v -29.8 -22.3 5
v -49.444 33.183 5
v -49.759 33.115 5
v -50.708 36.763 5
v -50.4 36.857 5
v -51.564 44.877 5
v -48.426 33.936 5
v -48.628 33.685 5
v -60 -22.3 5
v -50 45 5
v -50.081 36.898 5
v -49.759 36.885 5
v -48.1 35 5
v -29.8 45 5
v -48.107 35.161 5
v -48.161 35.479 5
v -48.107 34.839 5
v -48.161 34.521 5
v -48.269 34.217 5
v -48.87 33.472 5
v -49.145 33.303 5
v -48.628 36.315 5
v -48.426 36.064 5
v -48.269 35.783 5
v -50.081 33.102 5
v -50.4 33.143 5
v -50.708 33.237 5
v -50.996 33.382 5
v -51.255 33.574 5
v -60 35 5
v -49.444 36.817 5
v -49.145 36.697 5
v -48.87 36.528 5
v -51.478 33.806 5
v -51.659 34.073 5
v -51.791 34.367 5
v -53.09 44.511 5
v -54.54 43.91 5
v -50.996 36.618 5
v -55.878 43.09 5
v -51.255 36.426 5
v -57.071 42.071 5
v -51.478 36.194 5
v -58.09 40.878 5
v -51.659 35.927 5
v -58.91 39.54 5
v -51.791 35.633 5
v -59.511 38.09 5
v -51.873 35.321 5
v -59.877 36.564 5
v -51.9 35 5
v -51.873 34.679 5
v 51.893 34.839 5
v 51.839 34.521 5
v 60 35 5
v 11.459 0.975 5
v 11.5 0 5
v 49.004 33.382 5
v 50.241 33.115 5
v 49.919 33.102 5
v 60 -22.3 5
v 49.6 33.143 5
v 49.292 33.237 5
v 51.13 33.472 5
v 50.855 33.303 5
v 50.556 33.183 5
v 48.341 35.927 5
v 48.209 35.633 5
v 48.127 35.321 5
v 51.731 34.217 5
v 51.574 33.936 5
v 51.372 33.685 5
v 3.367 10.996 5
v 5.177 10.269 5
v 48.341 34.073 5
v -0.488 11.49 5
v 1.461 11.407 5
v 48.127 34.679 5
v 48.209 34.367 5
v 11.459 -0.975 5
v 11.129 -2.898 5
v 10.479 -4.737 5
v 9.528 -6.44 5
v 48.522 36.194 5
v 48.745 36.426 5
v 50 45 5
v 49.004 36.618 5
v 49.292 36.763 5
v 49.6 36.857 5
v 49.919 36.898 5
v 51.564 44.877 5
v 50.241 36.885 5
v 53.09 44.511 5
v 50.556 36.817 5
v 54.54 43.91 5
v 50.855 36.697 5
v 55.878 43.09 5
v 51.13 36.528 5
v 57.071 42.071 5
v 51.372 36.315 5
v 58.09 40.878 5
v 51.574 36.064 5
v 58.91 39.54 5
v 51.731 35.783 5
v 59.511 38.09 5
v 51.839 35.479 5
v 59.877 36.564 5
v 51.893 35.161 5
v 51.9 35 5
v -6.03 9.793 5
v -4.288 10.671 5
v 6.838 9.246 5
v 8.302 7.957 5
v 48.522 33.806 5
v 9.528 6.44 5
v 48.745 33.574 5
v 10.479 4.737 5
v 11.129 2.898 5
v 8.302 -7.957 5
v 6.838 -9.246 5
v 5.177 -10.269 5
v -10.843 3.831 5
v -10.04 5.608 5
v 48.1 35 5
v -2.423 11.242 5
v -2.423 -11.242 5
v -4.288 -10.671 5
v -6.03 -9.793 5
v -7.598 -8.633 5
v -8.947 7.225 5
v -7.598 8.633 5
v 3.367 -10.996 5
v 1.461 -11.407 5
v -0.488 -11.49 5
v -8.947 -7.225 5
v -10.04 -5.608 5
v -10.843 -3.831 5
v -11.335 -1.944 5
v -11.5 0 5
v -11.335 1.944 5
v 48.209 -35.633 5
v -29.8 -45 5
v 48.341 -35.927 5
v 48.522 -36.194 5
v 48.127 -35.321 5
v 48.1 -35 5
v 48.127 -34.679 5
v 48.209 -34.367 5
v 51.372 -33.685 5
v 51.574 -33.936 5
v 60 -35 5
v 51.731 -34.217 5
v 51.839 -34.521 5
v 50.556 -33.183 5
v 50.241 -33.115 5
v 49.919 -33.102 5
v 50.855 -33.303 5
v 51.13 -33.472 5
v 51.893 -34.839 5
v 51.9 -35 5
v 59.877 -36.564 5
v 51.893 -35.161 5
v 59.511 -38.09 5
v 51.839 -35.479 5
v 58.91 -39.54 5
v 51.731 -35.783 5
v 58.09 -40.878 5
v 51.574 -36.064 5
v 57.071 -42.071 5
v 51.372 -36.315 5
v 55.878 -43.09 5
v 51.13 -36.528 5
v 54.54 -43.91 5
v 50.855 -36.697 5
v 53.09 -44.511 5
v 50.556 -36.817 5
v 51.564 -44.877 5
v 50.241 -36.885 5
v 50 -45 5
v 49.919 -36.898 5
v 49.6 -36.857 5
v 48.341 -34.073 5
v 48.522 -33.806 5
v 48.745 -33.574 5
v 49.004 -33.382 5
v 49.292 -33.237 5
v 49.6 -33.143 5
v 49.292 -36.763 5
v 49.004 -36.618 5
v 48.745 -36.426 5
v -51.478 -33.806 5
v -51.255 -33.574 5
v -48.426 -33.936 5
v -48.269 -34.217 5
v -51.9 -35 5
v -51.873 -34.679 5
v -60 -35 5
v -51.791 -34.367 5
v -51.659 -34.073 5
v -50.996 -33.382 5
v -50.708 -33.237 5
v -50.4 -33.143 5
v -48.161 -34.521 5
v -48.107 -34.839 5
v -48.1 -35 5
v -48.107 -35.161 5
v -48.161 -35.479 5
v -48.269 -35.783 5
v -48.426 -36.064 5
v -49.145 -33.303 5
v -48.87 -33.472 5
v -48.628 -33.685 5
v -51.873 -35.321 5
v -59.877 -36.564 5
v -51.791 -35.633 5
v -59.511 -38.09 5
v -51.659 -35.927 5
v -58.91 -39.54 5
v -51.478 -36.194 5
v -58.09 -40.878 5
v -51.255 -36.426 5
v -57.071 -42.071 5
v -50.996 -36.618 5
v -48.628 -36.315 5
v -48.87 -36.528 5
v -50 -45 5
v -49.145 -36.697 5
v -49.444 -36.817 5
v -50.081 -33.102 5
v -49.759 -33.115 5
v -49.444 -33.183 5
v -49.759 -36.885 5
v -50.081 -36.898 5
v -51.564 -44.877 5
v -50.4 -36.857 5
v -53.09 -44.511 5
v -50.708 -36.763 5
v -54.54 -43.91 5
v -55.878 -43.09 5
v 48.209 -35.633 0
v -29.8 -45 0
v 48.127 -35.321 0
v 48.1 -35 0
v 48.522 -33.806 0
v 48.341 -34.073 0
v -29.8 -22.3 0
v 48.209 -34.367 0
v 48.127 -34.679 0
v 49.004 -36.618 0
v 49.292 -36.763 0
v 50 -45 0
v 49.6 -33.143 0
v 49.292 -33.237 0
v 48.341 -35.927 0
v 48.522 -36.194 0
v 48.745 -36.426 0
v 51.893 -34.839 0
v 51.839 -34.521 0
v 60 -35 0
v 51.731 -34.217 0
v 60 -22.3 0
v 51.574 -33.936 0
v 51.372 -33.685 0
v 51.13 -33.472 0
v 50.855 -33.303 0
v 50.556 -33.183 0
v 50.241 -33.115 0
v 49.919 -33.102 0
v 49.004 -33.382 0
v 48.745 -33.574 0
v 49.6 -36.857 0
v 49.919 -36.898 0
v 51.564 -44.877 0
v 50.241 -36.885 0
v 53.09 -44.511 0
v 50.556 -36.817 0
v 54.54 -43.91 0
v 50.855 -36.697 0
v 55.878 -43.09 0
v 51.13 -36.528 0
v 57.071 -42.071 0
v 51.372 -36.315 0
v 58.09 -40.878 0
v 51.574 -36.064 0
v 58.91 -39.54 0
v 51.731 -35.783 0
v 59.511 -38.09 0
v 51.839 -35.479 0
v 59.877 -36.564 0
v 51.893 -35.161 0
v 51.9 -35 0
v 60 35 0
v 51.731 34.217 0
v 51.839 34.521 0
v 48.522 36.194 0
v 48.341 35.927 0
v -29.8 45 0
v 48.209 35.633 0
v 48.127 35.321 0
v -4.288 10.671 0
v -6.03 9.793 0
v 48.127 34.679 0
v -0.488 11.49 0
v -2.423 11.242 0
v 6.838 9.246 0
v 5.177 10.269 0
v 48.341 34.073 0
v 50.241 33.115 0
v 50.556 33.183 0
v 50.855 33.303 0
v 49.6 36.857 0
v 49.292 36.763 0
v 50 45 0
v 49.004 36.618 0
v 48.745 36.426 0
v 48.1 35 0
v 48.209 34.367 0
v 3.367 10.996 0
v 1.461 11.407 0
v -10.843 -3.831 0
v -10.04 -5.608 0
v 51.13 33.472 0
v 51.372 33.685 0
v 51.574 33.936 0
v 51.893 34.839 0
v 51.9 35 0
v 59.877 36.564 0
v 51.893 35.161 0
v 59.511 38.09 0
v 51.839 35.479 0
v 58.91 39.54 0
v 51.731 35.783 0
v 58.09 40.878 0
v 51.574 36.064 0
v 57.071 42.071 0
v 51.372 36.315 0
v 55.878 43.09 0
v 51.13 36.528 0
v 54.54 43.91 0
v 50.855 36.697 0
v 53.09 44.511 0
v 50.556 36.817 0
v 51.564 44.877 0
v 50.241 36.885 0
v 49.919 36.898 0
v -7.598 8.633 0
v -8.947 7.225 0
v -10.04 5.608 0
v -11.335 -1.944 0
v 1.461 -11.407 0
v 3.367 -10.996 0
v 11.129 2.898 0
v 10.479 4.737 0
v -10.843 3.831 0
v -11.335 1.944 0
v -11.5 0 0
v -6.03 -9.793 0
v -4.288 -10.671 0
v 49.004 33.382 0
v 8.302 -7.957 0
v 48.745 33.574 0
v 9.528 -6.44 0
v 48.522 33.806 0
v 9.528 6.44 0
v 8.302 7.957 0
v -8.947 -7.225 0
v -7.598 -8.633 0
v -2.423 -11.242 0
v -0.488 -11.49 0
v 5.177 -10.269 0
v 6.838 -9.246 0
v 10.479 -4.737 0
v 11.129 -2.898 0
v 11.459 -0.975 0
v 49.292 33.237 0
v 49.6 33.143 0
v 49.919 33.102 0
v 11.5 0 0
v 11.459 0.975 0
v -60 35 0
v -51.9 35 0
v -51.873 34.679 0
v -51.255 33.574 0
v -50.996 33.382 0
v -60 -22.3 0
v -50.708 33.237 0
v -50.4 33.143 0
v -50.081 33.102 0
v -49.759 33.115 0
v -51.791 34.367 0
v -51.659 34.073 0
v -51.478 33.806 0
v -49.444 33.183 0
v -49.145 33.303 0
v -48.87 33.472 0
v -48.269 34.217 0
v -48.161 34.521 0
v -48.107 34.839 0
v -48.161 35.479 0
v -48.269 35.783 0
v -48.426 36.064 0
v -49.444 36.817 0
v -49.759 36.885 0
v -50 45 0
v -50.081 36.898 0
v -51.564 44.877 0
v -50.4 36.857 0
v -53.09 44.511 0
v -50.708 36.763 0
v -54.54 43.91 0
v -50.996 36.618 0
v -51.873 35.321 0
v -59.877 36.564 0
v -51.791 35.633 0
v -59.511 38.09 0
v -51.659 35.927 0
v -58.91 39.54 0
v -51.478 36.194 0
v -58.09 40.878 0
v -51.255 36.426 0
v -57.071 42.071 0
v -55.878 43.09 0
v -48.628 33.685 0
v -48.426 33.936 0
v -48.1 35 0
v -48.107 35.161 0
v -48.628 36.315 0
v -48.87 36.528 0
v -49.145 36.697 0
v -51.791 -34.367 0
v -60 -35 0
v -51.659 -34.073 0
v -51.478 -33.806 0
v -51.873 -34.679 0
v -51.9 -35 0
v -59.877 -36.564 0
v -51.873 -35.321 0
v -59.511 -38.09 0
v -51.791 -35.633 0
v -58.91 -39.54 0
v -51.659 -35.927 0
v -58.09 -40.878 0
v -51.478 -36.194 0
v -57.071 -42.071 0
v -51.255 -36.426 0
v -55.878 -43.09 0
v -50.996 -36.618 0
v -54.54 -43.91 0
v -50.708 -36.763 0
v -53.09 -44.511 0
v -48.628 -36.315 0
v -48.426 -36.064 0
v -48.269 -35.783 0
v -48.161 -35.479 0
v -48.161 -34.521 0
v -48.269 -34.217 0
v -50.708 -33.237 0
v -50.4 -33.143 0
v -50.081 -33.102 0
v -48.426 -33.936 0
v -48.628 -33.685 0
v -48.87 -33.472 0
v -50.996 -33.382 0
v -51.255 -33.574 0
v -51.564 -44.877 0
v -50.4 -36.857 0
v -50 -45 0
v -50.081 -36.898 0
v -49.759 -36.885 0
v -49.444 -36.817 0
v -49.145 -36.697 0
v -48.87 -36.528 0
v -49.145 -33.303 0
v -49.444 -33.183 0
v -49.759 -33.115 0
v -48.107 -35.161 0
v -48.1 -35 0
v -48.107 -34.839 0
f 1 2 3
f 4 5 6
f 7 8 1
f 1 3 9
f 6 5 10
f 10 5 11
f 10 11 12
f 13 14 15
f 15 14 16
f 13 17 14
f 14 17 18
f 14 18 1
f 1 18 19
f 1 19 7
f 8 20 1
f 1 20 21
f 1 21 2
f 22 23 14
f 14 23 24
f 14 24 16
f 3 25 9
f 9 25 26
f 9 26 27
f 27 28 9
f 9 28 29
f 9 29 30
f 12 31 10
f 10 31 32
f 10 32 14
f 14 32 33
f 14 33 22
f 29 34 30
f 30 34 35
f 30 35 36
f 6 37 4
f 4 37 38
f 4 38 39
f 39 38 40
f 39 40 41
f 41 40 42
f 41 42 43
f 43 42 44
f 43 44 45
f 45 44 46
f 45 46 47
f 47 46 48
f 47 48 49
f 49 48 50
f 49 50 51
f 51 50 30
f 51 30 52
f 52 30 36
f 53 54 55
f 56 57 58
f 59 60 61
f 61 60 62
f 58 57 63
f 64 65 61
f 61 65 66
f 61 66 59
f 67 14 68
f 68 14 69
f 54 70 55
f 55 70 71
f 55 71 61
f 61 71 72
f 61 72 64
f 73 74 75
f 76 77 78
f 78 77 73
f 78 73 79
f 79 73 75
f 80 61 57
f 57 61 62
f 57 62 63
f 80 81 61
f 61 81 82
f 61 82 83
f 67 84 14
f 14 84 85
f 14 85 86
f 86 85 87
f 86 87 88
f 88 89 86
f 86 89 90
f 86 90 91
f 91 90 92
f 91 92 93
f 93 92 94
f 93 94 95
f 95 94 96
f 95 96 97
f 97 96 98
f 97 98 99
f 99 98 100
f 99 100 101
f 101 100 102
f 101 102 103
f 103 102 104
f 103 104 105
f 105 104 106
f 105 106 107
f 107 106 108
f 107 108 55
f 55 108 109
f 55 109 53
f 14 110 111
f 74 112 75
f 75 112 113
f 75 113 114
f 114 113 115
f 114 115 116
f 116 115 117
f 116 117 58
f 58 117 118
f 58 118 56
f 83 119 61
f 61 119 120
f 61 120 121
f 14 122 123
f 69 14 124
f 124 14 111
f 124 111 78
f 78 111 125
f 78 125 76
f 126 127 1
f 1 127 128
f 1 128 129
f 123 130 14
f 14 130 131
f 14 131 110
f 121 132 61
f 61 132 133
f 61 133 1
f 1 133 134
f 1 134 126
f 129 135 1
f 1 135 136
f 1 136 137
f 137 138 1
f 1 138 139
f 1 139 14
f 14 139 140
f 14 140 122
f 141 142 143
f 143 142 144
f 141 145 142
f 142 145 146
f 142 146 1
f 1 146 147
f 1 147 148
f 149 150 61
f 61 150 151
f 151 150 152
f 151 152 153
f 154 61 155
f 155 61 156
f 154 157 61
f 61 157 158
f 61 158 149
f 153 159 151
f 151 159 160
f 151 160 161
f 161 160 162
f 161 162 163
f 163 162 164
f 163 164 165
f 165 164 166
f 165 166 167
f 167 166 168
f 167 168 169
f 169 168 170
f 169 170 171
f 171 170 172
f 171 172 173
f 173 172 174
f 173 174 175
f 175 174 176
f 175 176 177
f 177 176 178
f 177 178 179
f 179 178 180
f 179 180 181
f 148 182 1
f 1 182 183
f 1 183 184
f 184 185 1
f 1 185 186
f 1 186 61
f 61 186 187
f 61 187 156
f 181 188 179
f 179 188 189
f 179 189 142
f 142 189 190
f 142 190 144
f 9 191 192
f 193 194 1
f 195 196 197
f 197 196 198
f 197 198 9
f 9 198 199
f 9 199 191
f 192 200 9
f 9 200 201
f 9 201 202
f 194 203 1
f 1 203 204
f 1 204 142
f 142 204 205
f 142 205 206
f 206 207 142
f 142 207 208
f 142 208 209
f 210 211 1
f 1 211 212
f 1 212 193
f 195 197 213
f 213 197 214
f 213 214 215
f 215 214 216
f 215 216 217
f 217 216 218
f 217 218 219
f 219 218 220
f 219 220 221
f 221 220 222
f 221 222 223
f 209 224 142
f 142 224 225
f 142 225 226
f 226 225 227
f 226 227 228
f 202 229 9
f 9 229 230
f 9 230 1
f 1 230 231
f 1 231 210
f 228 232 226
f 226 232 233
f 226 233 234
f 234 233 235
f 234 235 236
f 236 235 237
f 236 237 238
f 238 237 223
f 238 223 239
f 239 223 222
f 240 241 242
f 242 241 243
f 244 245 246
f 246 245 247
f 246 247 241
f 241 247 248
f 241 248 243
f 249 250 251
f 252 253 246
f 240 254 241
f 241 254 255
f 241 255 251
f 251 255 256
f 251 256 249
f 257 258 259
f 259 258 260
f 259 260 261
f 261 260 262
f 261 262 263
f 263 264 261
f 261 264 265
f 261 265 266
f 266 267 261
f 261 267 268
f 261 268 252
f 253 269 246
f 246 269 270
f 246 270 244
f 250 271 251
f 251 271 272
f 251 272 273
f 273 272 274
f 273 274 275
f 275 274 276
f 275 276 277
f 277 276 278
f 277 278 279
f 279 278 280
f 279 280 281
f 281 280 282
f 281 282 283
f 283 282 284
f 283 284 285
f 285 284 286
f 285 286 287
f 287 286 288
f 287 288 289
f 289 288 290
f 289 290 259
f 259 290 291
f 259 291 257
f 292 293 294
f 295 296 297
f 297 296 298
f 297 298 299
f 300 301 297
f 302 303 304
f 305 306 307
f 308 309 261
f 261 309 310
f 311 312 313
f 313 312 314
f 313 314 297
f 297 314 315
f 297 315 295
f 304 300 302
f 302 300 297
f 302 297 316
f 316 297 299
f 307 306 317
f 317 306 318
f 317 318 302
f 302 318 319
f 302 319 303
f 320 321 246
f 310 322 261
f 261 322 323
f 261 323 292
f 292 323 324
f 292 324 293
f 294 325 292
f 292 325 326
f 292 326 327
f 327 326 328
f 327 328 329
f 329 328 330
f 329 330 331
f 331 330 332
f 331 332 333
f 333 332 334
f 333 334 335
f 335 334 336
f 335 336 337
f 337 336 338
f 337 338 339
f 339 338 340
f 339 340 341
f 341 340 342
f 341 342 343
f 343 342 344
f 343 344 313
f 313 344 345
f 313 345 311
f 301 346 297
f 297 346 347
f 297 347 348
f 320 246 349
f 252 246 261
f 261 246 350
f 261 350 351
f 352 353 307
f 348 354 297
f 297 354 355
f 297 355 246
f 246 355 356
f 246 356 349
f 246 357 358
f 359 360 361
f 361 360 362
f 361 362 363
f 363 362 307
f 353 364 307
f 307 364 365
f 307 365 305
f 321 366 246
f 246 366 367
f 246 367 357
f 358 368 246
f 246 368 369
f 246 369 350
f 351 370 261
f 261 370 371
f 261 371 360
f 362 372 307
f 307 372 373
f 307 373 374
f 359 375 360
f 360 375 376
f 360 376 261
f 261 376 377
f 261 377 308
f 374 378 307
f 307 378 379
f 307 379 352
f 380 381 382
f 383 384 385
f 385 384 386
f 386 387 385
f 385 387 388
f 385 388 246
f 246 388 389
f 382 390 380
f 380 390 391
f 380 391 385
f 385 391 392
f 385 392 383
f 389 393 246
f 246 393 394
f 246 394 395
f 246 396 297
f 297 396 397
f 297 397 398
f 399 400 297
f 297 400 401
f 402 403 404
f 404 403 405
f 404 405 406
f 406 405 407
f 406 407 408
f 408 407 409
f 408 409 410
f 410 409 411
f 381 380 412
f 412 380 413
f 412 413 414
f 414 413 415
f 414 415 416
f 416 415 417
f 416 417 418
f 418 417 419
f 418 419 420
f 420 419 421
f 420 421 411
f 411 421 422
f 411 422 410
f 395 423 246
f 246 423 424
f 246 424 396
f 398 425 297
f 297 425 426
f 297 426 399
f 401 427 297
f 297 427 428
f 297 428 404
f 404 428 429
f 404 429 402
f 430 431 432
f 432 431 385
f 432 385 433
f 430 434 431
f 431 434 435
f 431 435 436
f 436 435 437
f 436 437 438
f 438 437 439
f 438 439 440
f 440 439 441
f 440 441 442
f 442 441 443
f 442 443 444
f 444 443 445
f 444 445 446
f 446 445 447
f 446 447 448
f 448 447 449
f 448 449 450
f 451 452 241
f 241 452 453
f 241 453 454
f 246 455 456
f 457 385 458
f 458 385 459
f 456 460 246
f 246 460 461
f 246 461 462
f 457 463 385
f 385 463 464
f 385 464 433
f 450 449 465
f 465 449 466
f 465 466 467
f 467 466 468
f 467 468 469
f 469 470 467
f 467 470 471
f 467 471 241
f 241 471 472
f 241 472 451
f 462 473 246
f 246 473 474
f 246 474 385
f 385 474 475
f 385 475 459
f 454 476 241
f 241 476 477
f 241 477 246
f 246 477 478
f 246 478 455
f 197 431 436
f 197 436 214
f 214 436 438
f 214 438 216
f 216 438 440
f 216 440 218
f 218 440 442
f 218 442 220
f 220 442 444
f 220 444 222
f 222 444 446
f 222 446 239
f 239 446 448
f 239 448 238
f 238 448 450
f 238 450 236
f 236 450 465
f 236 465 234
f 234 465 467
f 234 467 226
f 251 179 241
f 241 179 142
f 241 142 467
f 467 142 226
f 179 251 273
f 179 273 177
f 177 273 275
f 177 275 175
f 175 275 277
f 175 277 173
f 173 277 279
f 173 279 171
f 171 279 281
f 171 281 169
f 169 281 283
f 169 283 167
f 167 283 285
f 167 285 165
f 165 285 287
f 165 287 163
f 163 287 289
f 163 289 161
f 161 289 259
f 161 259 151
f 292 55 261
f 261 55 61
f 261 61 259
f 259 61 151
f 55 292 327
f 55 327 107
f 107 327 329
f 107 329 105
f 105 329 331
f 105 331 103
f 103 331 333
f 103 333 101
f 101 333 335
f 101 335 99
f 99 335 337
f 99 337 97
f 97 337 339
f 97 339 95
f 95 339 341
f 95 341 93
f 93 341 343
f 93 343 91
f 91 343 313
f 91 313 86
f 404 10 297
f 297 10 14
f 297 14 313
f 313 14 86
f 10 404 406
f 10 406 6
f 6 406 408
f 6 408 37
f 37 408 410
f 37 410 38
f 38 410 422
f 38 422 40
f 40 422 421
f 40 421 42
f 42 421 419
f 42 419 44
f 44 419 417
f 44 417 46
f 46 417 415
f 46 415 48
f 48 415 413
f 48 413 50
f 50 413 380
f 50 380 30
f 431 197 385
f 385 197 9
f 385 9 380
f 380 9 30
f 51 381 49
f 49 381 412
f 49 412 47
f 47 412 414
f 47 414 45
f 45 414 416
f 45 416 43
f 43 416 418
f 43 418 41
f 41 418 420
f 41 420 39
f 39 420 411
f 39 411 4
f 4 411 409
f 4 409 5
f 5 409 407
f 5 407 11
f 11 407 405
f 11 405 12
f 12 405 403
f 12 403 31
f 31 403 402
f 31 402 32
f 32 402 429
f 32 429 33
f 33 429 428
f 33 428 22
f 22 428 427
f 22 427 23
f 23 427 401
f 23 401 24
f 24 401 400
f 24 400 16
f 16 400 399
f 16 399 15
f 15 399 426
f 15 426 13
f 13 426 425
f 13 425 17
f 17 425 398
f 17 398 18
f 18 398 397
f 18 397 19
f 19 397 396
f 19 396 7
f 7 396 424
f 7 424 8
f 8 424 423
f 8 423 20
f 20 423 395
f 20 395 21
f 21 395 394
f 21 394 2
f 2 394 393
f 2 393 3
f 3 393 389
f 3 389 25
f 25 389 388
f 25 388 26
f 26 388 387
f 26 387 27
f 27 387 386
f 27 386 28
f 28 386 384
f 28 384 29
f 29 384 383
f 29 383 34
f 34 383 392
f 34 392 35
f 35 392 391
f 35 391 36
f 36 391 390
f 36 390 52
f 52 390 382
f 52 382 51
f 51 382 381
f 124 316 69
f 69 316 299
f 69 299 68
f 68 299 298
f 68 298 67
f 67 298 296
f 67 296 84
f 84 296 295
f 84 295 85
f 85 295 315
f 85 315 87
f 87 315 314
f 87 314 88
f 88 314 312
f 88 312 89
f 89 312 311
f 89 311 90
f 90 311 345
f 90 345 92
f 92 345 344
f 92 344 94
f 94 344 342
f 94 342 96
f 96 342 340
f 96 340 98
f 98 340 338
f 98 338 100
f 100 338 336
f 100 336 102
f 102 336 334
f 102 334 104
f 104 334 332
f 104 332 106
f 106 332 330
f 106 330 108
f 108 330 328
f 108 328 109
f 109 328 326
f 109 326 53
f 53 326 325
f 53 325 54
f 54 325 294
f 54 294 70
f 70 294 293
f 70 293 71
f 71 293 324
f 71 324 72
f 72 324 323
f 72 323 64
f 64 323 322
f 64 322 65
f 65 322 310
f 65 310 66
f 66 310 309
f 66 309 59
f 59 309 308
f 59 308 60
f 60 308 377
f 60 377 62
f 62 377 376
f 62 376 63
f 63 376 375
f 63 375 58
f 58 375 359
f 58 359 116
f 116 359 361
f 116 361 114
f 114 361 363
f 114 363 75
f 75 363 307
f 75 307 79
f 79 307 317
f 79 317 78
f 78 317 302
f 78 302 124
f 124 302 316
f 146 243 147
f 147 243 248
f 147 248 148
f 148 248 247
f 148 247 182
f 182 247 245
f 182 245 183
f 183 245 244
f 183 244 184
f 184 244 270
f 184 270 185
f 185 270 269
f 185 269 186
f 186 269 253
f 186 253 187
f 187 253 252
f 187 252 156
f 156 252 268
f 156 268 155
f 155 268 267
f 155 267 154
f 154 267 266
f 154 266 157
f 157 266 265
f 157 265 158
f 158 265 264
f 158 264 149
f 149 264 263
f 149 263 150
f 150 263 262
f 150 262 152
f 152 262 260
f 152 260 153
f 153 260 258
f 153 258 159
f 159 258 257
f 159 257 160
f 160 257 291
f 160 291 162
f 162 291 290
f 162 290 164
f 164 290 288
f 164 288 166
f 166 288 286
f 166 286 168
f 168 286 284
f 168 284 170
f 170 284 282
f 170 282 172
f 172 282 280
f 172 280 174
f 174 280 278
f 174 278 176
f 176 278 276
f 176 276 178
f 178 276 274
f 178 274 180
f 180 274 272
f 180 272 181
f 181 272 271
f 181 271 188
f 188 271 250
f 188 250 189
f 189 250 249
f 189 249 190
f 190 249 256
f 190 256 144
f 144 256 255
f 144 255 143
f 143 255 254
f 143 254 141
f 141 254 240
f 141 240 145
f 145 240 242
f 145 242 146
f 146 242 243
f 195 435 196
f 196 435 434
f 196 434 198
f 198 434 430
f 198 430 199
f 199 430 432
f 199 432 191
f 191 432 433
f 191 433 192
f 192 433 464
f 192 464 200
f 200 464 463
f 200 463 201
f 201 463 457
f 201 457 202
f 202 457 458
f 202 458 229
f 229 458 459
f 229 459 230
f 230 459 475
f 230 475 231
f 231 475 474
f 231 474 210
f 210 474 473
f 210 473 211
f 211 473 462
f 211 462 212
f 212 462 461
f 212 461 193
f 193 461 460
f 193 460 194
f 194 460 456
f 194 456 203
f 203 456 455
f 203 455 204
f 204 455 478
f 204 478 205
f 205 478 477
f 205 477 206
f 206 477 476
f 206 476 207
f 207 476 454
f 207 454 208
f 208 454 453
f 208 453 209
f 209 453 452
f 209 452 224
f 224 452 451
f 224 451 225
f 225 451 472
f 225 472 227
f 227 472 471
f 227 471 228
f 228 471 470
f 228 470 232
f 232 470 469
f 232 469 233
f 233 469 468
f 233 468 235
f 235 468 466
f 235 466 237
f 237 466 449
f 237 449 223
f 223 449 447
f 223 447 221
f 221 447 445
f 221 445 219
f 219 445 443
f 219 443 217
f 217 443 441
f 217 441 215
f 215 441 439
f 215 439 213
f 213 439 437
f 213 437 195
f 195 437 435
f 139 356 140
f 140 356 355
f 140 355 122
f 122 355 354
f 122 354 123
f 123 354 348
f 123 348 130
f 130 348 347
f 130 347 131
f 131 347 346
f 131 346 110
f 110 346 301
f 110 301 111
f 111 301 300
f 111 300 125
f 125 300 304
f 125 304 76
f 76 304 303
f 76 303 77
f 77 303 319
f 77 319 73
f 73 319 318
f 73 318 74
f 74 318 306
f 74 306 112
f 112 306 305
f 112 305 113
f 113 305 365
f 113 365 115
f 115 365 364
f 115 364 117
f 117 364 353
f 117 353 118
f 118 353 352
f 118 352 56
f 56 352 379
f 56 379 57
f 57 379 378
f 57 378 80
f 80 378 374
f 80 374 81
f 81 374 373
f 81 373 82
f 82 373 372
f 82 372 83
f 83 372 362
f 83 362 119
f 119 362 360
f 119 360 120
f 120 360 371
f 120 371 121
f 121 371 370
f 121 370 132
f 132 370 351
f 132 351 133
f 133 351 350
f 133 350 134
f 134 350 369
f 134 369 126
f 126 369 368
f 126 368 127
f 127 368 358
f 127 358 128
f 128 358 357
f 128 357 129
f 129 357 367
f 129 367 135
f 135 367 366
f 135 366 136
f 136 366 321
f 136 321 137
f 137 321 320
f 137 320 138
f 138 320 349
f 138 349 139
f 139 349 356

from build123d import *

# Parameters (mm, degrees)
SKETCH3_R           = 1.9
SKETCH3_R_2         = 11.5
BOSS_EXTRUDE2_DEPTH = 5


with BuildPart() as part:
    # Sketch3 → Boss-Extrude2 (new body)
    with BuildSketch(Plane.XY):
        with BuildLine():
            Line((-50, 45), (50, 45))
            ThreePointArc((50, 45), (57.071067812, 42.071067812), (60, 35))
            Line((60, 35), (60, -35))
            ThreePointArc((60, -35), (57.071067812, -42.071067812), (50, -45))
            Line((50, -45), (-50, -45))
            ThreePointArc((-50, -45), (-57.071067812, -42.071067812), (-60, -35))
            Line((-60, -35), (-60, 35))
            ThreePointArc((-60, 35), (-57.071067812, 42.071067812), (-50, 45))
        make_face()
        with Locations((-50, 35)):
            Circle(SKETCH3_R, mode=Mode.SUBTRACT)
        with Locations((50, 35)):
            Circle(SKETCH3_R, mode=Mode.SUBTRACT)
        with Locations((50, -35)):
            Circle(SKETCH3_R, mode=Mode.SUBTRACT)
        with Locations((-50, -35)):
            Circle(SKETCH3_R, mode=Mode.SUBTRACT)
        Circle(SKETCH3_R_2, mode=Mode.SUBTRACT)
    extrude(amount=BOSS_EXTRUDE2_DEPTH)


solid = part.part
